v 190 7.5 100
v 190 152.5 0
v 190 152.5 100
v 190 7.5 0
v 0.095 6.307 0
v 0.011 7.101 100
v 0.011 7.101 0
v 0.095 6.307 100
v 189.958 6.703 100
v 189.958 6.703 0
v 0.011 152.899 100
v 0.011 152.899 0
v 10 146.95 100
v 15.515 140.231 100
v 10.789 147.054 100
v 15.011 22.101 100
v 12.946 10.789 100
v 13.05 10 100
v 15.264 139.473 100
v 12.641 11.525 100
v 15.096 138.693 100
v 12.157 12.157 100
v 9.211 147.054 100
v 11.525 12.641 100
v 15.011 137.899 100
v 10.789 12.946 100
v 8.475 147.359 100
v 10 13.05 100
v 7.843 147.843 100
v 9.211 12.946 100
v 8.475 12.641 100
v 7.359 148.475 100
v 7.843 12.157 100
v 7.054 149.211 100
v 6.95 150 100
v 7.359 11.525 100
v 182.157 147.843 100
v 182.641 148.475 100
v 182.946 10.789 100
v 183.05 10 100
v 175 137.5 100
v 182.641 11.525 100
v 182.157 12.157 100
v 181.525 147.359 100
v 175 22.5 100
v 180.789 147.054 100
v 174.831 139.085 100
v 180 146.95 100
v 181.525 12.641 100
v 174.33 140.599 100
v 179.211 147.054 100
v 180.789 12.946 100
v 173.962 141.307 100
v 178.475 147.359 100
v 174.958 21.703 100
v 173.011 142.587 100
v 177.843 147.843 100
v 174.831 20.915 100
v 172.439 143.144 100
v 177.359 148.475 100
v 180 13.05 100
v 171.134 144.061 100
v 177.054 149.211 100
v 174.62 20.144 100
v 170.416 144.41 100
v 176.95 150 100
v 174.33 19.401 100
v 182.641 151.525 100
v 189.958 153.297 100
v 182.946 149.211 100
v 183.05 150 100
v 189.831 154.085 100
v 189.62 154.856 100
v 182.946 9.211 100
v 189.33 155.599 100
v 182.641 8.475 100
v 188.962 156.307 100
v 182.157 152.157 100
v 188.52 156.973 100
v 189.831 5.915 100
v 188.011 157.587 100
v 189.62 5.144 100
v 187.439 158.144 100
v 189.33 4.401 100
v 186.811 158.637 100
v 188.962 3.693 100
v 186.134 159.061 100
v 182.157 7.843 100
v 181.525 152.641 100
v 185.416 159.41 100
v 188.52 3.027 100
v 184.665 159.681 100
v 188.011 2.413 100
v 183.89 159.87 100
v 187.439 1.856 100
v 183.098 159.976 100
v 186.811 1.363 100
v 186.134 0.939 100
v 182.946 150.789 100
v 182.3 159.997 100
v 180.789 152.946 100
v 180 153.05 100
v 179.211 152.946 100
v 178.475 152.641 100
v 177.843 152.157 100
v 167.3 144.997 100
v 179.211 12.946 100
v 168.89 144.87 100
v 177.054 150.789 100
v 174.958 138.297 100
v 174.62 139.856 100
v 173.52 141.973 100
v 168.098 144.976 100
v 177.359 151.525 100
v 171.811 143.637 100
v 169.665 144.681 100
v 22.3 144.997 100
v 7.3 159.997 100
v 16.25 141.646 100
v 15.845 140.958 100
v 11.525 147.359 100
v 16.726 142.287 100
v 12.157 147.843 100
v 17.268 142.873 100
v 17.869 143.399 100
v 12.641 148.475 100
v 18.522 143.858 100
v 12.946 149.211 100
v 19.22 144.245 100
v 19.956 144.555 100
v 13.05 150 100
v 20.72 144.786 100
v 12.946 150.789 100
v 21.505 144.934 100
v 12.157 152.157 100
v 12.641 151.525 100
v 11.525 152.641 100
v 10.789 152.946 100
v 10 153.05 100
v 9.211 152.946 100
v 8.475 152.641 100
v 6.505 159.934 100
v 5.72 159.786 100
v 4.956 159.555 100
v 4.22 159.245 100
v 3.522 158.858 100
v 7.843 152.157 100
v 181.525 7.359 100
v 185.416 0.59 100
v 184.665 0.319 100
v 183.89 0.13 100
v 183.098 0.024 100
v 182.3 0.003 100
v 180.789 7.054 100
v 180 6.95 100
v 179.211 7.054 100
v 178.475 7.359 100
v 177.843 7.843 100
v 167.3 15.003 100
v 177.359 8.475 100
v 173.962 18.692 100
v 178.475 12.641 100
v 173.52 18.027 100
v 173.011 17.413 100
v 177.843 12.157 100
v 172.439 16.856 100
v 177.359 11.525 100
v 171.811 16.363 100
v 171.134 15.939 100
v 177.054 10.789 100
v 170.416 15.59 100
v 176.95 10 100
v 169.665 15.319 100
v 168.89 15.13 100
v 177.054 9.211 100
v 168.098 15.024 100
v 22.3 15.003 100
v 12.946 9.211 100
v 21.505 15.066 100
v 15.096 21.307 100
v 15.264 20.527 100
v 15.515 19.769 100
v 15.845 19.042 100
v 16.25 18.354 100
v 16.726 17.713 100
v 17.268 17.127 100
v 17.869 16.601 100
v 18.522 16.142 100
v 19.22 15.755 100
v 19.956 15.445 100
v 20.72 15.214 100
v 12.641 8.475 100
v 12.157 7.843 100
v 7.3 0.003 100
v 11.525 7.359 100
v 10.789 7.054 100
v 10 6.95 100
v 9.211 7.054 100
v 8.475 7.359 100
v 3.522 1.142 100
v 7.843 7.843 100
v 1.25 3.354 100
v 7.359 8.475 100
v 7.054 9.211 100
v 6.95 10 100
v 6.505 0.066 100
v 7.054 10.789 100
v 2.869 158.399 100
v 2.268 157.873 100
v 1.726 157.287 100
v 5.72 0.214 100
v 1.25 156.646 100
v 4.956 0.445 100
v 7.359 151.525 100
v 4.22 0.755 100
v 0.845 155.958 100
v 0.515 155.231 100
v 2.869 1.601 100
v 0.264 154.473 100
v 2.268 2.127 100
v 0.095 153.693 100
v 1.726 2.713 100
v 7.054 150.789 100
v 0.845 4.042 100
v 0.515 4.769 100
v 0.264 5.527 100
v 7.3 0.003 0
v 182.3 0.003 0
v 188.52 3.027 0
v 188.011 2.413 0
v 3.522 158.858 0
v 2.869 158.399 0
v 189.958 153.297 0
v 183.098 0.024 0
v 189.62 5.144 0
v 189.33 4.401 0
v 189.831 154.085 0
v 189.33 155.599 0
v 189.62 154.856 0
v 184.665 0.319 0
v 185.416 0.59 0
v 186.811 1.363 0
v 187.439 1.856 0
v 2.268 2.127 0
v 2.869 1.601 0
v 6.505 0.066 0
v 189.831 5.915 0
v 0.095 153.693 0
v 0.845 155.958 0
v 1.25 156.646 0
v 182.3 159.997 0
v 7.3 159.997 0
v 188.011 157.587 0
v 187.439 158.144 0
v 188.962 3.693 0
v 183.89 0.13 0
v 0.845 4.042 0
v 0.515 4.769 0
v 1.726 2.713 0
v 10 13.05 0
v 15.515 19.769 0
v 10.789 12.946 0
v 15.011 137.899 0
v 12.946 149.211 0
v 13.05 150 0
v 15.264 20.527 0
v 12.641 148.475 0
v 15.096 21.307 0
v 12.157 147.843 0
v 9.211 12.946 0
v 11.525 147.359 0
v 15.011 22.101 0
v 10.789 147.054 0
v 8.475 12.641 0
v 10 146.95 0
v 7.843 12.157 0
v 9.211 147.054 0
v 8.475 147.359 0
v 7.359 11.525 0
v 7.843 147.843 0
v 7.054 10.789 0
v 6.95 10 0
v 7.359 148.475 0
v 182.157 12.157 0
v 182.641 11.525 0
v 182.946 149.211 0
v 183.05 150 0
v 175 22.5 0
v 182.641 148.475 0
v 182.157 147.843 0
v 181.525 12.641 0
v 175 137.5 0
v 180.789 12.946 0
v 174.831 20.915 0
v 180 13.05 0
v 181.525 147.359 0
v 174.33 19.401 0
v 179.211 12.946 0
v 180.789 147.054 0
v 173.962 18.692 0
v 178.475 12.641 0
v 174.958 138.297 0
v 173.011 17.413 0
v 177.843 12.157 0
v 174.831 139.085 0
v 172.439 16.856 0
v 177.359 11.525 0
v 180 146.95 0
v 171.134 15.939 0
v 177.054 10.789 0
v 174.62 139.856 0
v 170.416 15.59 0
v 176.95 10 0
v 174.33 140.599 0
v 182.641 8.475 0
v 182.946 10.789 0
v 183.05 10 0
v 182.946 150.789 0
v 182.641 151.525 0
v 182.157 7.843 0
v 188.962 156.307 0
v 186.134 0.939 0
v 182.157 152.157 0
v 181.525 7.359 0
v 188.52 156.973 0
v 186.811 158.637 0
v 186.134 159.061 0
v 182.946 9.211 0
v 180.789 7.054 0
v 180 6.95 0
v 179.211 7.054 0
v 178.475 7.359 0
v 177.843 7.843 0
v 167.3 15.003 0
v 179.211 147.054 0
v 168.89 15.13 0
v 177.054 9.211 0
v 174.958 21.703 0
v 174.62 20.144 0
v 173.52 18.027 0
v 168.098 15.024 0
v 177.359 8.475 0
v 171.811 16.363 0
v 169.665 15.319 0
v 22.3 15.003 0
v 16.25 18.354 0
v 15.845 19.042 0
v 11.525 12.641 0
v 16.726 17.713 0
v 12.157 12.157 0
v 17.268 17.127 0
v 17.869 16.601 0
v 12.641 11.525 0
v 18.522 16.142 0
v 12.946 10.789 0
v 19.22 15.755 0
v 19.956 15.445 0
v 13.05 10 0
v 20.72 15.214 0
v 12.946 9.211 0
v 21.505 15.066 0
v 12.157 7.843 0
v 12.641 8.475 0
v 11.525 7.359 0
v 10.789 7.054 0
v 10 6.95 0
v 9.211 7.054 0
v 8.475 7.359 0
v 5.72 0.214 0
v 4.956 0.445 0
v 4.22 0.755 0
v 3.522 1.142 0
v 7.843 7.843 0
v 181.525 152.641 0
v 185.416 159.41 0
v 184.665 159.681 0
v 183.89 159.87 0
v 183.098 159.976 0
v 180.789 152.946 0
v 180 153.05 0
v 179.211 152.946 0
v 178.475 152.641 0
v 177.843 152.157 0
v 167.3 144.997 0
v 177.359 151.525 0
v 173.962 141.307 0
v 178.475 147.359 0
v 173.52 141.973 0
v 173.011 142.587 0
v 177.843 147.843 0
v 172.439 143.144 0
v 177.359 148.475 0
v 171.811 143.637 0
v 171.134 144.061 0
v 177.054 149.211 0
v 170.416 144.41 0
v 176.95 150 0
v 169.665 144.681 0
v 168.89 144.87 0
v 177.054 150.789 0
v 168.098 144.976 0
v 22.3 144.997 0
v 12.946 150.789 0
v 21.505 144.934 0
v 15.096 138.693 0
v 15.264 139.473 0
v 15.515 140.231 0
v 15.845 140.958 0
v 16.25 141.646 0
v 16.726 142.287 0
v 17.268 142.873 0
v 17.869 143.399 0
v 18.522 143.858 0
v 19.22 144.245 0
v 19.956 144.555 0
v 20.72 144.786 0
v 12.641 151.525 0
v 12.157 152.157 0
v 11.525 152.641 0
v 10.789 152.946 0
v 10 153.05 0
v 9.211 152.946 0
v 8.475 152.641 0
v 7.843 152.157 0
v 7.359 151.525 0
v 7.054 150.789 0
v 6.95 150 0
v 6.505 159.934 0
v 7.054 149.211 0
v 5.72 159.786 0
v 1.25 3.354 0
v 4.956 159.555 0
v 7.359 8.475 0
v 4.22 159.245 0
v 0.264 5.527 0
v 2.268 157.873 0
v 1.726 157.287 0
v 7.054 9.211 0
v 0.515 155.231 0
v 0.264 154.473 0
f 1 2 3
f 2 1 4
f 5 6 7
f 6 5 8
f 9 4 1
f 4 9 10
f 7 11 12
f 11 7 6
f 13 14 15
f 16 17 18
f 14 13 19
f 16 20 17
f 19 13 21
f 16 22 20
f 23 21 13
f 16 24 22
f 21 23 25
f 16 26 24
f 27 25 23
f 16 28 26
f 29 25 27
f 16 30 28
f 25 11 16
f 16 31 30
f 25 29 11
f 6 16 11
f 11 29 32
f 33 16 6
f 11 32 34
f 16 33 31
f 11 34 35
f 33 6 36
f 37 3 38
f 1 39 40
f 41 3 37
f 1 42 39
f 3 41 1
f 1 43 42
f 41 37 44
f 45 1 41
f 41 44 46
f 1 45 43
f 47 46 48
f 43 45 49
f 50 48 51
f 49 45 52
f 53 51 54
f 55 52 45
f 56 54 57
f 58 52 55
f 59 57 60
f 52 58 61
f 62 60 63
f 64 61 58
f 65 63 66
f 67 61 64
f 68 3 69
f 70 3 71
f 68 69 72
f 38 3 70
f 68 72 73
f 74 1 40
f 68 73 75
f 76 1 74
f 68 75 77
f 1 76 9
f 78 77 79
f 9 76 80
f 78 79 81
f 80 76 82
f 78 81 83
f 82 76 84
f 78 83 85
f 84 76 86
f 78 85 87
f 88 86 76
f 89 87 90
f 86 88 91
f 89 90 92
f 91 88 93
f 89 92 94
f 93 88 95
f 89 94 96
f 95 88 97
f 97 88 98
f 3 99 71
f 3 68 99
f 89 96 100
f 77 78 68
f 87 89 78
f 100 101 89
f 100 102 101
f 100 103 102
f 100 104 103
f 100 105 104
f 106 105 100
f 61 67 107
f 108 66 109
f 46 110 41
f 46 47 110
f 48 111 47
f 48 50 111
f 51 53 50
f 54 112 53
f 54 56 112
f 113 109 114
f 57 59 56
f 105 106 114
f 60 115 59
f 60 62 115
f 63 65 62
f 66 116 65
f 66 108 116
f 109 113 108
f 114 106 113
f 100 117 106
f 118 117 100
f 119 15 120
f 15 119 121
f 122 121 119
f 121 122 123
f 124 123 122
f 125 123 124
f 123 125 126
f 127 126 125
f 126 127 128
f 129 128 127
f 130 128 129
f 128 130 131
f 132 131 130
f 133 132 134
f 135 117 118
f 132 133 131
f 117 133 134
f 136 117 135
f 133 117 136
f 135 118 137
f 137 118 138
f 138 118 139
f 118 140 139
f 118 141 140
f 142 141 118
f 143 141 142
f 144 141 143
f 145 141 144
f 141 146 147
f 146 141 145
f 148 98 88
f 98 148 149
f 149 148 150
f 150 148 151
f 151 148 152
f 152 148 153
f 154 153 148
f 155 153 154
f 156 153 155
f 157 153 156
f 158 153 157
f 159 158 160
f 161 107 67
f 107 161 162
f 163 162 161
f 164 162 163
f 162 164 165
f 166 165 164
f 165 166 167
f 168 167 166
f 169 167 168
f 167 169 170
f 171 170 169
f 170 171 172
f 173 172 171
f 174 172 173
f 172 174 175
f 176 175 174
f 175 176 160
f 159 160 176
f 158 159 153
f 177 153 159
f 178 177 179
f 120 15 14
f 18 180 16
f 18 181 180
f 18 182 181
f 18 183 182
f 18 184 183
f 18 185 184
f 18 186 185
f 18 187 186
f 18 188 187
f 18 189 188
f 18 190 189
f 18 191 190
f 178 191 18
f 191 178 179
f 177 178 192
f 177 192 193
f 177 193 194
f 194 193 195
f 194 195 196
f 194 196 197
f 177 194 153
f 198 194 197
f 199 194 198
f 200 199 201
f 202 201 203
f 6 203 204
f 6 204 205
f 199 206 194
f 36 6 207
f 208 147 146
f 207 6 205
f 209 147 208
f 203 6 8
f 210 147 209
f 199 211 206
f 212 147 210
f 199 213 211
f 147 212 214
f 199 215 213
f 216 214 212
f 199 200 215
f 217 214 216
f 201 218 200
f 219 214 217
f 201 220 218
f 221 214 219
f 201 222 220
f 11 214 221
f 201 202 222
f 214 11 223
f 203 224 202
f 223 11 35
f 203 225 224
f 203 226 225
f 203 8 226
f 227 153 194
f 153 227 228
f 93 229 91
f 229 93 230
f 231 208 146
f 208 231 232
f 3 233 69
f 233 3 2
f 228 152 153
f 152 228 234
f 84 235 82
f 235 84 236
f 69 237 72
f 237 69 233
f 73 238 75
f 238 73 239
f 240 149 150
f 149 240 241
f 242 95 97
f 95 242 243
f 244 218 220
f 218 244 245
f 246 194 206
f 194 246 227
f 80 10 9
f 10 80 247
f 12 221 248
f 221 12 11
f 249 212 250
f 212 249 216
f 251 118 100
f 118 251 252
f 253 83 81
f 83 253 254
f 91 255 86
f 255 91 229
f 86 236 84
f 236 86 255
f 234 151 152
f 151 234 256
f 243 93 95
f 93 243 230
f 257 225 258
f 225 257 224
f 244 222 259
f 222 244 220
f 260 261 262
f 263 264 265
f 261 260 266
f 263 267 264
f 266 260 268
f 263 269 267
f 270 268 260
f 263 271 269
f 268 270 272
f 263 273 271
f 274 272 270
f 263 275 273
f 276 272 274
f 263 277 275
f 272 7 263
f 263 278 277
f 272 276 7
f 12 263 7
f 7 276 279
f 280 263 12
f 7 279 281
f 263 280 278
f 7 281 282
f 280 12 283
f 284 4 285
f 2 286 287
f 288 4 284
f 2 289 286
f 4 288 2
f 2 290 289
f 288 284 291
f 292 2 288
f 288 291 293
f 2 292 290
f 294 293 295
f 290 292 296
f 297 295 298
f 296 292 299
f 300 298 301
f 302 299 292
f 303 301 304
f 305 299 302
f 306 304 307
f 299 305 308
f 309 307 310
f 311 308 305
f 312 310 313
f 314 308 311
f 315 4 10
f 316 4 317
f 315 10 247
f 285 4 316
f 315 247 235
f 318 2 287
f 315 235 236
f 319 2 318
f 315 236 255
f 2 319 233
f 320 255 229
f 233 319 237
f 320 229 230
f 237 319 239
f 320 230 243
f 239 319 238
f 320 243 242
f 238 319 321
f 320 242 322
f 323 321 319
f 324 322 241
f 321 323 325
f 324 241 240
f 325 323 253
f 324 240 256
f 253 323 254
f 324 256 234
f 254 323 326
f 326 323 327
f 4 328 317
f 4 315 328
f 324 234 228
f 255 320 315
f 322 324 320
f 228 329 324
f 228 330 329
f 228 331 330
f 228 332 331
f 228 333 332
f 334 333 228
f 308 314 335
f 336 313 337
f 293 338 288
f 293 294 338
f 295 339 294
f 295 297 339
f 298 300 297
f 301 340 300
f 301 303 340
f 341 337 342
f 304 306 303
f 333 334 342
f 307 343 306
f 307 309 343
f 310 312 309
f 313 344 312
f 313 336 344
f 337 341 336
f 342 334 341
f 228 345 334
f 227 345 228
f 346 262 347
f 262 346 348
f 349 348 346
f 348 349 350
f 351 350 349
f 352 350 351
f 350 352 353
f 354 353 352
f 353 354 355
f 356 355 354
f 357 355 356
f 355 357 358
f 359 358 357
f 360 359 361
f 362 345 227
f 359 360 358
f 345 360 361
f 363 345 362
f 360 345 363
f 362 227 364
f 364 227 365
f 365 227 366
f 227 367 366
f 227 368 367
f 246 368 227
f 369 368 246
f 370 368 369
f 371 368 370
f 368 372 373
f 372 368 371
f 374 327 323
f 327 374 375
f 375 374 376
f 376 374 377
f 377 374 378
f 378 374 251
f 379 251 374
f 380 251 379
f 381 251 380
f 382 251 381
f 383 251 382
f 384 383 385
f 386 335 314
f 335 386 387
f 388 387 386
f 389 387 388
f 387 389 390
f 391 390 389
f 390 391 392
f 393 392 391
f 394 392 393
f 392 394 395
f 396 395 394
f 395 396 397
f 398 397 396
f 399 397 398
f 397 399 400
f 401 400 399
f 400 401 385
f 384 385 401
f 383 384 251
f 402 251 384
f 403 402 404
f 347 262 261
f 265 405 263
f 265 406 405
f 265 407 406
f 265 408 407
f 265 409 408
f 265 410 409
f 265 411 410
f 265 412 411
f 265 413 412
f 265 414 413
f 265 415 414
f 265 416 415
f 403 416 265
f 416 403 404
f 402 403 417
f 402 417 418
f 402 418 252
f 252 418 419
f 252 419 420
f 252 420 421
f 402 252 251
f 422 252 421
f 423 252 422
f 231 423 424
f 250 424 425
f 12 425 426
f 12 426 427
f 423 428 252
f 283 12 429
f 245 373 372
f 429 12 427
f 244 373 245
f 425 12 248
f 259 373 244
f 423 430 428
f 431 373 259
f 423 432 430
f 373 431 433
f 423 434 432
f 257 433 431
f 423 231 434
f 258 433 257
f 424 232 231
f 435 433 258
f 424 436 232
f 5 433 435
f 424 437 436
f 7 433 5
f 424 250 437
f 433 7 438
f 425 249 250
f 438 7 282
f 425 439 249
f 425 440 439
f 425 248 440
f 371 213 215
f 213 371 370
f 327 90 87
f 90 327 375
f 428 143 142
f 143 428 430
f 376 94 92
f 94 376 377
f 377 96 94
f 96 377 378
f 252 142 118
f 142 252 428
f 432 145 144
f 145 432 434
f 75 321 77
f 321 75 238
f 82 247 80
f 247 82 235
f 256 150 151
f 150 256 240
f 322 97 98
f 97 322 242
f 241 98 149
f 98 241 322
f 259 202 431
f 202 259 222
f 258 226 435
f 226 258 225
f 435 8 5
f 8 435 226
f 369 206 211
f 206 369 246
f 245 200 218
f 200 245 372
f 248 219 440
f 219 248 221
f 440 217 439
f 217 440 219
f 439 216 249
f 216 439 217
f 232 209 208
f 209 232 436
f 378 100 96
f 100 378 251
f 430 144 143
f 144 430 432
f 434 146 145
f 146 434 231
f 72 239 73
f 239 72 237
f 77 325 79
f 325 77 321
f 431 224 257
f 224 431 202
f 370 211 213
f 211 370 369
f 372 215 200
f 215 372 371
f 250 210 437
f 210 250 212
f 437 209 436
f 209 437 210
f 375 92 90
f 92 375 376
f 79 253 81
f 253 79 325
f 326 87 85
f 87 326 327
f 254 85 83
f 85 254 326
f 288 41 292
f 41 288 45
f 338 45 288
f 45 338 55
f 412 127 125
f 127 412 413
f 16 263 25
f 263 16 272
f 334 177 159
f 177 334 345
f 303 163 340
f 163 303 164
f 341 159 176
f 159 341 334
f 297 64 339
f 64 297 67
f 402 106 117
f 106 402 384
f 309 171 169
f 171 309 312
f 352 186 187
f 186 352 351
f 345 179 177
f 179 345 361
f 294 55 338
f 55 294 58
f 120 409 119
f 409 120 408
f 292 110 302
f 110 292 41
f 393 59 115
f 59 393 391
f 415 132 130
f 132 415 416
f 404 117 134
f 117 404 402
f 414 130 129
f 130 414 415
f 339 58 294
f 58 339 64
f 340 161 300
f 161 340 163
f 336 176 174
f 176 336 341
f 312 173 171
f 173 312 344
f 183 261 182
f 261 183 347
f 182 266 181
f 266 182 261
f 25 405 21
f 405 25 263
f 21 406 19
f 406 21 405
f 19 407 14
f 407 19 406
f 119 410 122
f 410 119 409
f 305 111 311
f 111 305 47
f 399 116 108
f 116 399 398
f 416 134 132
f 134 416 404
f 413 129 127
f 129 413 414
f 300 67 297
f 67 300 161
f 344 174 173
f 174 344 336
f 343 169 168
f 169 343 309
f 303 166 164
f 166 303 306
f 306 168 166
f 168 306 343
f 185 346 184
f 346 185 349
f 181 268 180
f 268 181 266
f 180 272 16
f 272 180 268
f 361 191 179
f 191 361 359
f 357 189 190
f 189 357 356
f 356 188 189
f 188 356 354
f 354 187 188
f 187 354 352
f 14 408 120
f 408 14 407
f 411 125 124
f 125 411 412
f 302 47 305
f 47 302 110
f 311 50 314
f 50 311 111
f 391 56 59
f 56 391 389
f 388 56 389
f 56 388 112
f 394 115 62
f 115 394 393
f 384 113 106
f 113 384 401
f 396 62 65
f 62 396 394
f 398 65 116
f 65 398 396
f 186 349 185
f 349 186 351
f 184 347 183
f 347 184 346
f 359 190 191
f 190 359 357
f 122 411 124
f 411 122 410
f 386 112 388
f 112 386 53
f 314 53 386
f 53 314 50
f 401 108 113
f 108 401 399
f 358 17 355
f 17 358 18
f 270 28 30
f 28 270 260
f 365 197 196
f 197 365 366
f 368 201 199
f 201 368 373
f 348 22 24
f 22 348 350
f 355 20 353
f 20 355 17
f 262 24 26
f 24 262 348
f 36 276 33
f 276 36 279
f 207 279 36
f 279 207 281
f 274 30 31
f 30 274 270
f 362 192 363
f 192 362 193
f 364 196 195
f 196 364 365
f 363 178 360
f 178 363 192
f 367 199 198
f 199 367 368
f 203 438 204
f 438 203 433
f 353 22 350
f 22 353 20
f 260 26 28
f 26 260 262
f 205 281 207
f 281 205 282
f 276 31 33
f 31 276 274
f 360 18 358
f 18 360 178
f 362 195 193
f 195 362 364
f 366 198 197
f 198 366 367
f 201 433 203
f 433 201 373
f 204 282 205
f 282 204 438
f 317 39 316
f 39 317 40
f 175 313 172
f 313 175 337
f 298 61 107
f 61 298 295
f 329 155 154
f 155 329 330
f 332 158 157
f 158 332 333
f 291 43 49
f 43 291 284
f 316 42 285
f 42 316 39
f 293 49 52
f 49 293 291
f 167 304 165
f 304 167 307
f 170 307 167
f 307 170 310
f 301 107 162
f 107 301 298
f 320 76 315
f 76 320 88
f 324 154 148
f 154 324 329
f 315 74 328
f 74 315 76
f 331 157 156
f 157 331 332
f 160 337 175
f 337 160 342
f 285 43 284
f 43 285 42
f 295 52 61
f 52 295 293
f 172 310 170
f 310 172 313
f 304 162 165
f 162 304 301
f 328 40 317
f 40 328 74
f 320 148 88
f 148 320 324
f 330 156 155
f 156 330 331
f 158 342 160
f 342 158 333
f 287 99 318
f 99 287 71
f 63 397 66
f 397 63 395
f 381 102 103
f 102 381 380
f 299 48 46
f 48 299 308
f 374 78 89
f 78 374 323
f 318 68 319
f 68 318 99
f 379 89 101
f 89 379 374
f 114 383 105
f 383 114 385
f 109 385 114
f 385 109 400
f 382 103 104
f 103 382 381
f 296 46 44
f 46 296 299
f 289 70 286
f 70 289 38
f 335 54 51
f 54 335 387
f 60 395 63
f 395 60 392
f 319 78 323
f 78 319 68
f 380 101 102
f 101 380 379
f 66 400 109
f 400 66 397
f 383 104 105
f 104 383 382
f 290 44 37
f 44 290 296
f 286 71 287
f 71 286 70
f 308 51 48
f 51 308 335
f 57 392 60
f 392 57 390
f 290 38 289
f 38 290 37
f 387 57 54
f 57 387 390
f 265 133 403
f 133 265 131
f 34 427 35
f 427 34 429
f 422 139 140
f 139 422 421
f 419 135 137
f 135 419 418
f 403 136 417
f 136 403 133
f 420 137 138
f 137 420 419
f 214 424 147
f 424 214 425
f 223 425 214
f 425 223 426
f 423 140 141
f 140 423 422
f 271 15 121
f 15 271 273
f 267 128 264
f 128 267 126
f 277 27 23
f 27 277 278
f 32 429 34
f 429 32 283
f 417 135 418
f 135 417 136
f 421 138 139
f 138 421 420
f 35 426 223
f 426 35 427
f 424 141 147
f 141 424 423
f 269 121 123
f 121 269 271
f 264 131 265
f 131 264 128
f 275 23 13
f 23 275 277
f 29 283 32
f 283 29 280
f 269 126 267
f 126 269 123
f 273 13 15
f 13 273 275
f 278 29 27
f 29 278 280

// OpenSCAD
// file: ../lib/roundedRect.scad
module roundedRect2(size, radius) {
    translate([radius, radius, 0]) minkowski() {
        cube([size[0] - 2 * radius , size[1] - 2 * radius, size[2] -1]);
        cylinder(r=radius, h=1);
    }
}

module roundedRect(size, radius) {
    minkowski() {
        cube(size);
        cylinder(r=2,h=1);
    }
}
// main file
$fa=2;
$fs=0.8;
use <../lib/roundedRect.scad>;

module hole() {
    cylinder(h = 120, d=6.1);
}

module box() {
    union() {
        difference() {
            roundedRect2([190, 160, 100], 7.5);
            translate([15, 15, -10]) roundedRect2([160, 130, 120], 7.5);
        }
    }
}

module holes() {
    translate([10, 10, -10]) hole();
    translate([180, 10, -10]) hole();
    translate([180, 150, -10]) hole();
    translate([10, 150, -10]) hole();
}

difference() {
    box();
    holes();
}
